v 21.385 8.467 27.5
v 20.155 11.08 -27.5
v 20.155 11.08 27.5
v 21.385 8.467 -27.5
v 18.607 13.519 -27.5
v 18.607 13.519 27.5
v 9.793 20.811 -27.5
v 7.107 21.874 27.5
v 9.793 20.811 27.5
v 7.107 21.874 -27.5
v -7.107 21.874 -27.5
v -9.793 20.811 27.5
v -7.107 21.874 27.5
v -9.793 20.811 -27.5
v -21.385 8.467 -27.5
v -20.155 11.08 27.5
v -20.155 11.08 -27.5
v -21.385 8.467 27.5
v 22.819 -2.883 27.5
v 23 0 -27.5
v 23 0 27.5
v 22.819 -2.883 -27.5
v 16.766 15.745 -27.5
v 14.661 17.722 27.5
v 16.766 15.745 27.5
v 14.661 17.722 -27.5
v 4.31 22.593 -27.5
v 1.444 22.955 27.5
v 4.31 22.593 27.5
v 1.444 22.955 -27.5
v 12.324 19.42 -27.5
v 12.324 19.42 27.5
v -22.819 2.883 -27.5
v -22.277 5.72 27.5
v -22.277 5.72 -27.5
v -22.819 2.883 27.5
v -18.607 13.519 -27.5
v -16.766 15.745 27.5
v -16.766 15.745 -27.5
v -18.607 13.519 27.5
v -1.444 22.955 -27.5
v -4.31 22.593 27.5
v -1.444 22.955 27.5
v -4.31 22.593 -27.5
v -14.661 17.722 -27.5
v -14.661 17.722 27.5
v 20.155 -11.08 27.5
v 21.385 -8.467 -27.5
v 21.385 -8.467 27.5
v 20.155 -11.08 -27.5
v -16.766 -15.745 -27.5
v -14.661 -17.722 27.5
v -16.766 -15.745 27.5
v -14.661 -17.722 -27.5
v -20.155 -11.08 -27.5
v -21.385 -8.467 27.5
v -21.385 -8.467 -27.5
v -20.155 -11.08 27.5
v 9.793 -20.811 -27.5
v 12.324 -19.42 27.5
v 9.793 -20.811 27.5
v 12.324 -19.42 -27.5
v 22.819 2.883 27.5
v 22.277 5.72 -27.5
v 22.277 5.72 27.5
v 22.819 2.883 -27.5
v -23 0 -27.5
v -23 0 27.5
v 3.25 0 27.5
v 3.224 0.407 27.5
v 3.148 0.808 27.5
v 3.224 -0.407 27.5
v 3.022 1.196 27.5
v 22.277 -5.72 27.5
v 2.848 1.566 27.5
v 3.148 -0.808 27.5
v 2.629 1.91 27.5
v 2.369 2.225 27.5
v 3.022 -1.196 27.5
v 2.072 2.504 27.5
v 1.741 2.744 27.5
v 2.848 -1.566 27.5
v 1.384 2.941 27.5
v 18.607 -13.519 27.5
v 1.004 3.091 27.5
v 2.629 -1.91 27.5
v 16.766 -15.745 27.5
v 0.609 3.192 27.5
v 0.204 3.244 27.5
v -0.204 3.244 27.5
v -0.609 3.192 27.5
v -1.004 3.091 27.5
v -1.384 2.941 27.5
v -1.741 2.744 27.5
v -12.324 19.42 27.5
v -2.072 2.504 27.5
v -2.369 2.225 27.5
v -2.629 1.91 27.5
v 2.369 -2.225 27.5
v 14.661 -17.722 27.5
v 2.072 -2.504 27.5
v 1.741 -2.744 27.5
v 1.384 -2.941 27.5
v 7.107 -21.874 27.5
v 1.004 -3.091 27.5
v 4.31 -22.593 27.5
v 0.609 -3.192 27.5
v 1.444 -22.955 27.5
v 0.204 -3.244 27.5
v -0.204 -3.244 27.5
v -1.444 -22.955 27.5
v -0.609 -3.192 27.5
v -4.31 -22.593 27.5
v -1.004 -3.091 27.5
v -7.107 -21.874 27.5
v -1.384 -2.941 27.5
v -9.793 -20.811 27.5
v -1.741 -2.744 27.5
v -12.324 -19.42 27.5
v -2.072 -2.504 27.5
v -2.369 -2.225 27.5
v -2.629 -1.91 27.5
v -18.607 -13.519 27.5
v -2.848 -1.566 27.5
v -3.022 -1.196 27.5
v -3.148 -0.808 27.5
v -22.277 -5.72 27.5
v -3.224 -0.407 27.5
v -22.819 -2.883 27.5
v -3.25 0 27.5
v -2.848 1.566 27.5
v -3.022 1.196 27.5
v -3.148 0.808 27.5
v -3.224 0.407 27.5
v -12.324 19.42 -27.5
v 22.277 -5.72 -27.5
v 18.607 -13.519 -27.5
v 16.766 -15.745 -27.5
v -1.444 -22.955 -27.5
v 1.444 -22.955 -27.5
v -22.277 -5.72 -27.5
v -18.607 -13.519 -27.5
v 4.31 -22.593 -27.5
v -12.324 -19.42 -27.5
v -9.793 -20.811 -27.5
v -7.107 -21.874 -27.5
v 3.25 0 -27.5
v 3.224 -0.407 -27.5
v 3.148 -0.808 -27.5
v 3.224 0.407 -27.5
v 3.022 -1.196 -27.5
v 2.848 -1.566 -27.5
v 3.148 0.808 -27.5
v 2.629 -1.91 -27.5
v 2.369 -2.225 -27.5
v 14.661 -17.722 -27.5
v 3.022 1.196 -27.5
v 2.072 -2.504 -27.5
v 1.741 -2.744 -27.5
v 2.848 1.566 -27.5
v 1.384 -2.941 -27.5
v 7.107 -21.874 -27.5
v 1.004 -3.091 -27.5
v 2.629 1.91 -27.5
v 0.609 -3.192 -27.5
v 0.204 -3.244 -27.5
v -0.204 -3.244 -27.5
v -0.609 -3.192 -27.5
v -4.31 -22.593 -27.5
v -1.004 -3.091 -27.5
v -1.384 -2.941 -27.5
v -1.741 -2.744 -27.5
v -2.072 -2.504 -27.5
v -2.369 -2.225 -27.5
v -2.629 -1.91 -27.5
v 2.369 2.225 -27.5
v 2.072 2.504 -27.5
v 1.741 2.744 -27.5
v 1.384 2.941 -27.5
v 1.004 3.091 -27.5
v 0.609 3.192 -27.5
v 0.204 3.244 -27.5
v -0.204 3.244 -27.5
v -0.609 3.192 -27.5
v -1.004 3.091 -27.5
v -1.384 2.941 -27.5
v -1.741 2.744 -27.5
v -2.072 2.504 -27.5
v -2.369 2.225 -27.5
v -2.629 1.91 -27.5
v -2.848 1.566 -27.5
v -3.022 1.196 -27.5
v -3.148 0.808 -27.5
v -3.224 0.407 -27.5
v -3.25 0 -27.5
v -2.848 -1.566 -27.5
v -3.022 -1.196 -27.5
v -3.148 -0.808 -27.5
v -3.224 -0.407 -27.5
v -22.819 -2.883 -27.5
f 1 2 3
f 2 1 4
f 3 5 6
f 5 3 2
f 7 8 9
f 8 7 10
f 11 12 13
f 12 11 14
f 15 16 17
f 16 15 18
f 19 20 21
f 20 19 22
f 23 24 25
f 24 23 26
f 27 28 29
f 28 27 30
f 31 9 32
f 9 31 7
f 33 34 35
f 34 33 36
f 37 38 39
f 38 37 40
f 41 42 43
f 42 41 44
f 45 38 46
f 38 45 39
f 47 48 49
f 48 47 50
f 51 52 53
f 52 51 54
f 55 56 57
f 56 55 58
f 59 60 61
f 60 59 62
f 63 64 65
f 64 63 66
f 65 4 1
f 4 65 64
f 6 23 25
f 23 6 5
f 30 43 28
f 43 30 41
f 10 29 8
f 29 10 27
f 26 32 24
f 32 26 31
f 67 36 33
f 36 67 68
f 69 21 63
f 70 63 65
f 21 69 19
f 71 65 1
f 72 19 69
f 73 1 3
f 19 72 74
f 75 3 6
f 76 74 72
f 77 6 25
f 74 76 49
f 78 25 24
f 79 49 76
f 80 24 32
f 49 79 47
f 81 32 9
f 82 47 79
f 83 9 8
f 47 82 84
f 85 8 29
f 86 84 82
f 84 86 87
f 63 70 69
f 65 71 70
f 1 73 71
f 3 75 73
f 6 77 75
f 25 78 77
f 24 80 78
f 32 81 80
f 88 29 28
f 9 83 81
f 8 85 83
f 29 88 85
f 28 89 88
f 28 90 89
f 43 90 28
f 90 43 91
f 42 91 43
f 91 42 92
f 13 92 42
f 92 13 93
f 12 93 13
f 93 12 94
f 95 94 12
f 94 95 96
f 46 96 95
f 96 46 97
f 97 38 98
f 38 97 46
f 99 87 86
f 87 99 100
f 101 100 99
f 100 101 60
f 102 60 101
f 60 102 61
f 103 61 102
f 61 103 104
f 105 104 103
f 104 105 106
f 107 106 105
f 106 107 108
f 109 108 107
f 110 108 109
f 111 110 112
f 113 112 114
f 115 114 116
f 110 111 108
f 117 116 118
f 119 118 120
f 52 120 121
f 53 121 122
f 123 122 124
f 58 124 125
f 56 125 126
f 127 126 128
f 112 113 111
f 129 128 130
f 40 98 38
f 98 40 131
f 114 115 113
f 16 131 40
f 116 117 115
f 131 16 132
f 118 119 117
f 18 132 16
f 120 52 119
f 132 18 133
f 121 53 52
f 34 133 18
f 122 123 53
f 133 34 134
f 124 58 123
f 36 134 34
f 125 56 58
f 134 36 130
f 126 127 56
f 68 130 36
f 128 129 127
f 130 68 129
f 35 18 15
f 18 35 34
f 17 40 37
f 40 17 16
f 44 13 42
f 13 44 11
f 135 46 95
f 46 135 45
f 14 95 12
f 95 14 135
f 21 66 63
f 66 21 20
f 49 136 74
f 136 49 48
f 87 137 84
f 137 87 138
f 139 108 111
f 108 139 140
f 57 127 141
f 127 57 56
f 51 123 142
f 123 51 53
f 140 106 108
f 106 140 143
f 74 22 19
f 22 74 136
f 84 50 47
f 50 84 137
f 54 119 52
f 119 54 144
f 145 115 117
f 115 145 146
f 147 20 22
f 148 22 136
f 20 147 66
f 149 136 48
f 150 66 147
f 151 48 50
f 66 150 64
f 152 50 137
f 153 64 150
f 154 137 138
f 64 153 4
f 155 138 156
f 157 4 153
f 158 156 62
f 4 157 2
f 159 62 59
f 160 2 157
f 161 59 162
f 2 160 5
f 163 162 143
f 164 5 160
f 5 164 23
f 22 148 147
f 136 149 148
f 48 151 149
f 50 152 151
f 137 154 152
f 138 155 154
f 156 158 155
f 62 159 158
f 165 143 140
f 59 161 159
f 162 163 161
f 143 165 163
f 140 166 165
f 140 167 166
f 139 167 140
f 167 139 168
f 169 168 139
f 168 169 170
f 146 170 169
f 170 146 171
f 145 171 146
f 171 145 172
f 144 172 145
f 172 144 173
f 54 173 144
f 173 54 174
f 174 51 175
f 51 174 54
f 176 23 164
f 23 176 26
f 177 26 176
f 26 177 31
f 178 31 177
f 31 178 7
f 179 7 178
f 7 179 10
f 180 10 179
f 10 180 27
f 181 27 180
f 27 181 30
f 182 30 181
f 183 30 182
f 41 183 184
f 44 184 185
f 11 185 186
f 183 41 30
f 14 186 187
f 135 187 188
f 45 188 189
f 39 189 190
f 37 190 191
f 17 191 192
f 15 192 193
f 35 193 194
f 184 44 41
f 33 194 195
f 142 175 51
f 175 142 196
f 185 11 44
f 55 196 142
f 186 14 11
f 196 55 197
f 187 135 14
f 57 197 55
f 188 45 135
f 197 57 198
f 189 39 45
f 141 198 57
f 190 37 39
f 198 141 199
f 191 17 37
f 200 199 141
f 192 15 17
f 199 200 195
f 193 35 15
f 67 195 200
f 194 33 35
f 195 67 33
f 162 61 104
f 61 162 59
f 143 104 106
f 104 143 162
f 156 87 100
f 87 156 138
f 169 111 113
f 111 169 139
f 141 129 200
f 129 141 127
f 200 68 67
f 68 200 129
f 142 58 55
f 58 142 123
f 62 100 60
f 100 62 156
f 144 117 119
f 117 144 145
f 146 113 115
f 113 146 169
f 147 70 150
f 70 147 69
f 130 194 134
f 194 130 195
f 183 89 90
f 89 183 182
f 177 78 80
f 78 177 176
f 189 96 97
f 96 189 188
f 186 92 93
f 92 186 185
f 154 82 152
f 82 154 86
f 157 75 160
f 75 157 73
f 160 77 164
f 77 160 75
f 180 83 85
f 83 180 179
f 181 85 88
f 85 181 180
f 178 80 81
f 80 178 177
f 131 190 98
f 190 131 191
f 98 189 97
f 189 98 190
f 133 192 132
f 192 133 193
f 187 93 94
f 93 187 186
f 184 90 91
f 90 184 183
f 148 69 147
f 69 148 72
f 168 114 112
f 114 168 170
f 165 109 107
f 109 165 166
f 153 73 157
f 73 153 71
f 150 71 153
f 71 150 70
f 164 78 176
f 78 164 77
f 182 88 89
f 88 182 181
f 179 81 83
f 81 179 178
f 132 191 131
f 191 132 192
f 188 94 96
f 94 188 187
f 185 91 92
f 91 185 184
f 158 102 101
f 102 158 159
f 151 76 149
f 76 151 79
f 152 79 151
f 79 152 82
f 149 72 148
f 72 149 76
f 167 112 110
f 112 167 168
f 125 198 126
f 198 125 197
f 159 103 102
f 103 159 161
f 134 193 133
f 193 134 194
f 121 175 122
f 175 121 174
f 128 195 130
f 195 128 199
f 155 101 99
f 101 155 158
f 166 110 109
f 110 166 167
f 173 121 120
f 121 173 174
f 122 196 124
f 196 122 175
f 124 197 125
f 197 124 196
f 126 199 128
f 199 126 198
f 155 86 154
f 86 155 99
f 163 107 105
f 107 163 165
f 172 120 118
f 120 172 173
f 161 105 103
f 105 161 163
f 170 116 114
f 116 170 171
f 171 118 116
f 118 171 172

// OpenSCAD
$fn = 50;


difference() {
	union() {
		translate(v = [0, 0, -27.5000000000]) {
			cylinder(h = 55, r = 23.0000000000);
		}
	}
	union() {
		translate(v = [0, 0, -100.0000000000]) {
			cylinder(h = 200, r = 3.2500000000);
		}
	}
}
